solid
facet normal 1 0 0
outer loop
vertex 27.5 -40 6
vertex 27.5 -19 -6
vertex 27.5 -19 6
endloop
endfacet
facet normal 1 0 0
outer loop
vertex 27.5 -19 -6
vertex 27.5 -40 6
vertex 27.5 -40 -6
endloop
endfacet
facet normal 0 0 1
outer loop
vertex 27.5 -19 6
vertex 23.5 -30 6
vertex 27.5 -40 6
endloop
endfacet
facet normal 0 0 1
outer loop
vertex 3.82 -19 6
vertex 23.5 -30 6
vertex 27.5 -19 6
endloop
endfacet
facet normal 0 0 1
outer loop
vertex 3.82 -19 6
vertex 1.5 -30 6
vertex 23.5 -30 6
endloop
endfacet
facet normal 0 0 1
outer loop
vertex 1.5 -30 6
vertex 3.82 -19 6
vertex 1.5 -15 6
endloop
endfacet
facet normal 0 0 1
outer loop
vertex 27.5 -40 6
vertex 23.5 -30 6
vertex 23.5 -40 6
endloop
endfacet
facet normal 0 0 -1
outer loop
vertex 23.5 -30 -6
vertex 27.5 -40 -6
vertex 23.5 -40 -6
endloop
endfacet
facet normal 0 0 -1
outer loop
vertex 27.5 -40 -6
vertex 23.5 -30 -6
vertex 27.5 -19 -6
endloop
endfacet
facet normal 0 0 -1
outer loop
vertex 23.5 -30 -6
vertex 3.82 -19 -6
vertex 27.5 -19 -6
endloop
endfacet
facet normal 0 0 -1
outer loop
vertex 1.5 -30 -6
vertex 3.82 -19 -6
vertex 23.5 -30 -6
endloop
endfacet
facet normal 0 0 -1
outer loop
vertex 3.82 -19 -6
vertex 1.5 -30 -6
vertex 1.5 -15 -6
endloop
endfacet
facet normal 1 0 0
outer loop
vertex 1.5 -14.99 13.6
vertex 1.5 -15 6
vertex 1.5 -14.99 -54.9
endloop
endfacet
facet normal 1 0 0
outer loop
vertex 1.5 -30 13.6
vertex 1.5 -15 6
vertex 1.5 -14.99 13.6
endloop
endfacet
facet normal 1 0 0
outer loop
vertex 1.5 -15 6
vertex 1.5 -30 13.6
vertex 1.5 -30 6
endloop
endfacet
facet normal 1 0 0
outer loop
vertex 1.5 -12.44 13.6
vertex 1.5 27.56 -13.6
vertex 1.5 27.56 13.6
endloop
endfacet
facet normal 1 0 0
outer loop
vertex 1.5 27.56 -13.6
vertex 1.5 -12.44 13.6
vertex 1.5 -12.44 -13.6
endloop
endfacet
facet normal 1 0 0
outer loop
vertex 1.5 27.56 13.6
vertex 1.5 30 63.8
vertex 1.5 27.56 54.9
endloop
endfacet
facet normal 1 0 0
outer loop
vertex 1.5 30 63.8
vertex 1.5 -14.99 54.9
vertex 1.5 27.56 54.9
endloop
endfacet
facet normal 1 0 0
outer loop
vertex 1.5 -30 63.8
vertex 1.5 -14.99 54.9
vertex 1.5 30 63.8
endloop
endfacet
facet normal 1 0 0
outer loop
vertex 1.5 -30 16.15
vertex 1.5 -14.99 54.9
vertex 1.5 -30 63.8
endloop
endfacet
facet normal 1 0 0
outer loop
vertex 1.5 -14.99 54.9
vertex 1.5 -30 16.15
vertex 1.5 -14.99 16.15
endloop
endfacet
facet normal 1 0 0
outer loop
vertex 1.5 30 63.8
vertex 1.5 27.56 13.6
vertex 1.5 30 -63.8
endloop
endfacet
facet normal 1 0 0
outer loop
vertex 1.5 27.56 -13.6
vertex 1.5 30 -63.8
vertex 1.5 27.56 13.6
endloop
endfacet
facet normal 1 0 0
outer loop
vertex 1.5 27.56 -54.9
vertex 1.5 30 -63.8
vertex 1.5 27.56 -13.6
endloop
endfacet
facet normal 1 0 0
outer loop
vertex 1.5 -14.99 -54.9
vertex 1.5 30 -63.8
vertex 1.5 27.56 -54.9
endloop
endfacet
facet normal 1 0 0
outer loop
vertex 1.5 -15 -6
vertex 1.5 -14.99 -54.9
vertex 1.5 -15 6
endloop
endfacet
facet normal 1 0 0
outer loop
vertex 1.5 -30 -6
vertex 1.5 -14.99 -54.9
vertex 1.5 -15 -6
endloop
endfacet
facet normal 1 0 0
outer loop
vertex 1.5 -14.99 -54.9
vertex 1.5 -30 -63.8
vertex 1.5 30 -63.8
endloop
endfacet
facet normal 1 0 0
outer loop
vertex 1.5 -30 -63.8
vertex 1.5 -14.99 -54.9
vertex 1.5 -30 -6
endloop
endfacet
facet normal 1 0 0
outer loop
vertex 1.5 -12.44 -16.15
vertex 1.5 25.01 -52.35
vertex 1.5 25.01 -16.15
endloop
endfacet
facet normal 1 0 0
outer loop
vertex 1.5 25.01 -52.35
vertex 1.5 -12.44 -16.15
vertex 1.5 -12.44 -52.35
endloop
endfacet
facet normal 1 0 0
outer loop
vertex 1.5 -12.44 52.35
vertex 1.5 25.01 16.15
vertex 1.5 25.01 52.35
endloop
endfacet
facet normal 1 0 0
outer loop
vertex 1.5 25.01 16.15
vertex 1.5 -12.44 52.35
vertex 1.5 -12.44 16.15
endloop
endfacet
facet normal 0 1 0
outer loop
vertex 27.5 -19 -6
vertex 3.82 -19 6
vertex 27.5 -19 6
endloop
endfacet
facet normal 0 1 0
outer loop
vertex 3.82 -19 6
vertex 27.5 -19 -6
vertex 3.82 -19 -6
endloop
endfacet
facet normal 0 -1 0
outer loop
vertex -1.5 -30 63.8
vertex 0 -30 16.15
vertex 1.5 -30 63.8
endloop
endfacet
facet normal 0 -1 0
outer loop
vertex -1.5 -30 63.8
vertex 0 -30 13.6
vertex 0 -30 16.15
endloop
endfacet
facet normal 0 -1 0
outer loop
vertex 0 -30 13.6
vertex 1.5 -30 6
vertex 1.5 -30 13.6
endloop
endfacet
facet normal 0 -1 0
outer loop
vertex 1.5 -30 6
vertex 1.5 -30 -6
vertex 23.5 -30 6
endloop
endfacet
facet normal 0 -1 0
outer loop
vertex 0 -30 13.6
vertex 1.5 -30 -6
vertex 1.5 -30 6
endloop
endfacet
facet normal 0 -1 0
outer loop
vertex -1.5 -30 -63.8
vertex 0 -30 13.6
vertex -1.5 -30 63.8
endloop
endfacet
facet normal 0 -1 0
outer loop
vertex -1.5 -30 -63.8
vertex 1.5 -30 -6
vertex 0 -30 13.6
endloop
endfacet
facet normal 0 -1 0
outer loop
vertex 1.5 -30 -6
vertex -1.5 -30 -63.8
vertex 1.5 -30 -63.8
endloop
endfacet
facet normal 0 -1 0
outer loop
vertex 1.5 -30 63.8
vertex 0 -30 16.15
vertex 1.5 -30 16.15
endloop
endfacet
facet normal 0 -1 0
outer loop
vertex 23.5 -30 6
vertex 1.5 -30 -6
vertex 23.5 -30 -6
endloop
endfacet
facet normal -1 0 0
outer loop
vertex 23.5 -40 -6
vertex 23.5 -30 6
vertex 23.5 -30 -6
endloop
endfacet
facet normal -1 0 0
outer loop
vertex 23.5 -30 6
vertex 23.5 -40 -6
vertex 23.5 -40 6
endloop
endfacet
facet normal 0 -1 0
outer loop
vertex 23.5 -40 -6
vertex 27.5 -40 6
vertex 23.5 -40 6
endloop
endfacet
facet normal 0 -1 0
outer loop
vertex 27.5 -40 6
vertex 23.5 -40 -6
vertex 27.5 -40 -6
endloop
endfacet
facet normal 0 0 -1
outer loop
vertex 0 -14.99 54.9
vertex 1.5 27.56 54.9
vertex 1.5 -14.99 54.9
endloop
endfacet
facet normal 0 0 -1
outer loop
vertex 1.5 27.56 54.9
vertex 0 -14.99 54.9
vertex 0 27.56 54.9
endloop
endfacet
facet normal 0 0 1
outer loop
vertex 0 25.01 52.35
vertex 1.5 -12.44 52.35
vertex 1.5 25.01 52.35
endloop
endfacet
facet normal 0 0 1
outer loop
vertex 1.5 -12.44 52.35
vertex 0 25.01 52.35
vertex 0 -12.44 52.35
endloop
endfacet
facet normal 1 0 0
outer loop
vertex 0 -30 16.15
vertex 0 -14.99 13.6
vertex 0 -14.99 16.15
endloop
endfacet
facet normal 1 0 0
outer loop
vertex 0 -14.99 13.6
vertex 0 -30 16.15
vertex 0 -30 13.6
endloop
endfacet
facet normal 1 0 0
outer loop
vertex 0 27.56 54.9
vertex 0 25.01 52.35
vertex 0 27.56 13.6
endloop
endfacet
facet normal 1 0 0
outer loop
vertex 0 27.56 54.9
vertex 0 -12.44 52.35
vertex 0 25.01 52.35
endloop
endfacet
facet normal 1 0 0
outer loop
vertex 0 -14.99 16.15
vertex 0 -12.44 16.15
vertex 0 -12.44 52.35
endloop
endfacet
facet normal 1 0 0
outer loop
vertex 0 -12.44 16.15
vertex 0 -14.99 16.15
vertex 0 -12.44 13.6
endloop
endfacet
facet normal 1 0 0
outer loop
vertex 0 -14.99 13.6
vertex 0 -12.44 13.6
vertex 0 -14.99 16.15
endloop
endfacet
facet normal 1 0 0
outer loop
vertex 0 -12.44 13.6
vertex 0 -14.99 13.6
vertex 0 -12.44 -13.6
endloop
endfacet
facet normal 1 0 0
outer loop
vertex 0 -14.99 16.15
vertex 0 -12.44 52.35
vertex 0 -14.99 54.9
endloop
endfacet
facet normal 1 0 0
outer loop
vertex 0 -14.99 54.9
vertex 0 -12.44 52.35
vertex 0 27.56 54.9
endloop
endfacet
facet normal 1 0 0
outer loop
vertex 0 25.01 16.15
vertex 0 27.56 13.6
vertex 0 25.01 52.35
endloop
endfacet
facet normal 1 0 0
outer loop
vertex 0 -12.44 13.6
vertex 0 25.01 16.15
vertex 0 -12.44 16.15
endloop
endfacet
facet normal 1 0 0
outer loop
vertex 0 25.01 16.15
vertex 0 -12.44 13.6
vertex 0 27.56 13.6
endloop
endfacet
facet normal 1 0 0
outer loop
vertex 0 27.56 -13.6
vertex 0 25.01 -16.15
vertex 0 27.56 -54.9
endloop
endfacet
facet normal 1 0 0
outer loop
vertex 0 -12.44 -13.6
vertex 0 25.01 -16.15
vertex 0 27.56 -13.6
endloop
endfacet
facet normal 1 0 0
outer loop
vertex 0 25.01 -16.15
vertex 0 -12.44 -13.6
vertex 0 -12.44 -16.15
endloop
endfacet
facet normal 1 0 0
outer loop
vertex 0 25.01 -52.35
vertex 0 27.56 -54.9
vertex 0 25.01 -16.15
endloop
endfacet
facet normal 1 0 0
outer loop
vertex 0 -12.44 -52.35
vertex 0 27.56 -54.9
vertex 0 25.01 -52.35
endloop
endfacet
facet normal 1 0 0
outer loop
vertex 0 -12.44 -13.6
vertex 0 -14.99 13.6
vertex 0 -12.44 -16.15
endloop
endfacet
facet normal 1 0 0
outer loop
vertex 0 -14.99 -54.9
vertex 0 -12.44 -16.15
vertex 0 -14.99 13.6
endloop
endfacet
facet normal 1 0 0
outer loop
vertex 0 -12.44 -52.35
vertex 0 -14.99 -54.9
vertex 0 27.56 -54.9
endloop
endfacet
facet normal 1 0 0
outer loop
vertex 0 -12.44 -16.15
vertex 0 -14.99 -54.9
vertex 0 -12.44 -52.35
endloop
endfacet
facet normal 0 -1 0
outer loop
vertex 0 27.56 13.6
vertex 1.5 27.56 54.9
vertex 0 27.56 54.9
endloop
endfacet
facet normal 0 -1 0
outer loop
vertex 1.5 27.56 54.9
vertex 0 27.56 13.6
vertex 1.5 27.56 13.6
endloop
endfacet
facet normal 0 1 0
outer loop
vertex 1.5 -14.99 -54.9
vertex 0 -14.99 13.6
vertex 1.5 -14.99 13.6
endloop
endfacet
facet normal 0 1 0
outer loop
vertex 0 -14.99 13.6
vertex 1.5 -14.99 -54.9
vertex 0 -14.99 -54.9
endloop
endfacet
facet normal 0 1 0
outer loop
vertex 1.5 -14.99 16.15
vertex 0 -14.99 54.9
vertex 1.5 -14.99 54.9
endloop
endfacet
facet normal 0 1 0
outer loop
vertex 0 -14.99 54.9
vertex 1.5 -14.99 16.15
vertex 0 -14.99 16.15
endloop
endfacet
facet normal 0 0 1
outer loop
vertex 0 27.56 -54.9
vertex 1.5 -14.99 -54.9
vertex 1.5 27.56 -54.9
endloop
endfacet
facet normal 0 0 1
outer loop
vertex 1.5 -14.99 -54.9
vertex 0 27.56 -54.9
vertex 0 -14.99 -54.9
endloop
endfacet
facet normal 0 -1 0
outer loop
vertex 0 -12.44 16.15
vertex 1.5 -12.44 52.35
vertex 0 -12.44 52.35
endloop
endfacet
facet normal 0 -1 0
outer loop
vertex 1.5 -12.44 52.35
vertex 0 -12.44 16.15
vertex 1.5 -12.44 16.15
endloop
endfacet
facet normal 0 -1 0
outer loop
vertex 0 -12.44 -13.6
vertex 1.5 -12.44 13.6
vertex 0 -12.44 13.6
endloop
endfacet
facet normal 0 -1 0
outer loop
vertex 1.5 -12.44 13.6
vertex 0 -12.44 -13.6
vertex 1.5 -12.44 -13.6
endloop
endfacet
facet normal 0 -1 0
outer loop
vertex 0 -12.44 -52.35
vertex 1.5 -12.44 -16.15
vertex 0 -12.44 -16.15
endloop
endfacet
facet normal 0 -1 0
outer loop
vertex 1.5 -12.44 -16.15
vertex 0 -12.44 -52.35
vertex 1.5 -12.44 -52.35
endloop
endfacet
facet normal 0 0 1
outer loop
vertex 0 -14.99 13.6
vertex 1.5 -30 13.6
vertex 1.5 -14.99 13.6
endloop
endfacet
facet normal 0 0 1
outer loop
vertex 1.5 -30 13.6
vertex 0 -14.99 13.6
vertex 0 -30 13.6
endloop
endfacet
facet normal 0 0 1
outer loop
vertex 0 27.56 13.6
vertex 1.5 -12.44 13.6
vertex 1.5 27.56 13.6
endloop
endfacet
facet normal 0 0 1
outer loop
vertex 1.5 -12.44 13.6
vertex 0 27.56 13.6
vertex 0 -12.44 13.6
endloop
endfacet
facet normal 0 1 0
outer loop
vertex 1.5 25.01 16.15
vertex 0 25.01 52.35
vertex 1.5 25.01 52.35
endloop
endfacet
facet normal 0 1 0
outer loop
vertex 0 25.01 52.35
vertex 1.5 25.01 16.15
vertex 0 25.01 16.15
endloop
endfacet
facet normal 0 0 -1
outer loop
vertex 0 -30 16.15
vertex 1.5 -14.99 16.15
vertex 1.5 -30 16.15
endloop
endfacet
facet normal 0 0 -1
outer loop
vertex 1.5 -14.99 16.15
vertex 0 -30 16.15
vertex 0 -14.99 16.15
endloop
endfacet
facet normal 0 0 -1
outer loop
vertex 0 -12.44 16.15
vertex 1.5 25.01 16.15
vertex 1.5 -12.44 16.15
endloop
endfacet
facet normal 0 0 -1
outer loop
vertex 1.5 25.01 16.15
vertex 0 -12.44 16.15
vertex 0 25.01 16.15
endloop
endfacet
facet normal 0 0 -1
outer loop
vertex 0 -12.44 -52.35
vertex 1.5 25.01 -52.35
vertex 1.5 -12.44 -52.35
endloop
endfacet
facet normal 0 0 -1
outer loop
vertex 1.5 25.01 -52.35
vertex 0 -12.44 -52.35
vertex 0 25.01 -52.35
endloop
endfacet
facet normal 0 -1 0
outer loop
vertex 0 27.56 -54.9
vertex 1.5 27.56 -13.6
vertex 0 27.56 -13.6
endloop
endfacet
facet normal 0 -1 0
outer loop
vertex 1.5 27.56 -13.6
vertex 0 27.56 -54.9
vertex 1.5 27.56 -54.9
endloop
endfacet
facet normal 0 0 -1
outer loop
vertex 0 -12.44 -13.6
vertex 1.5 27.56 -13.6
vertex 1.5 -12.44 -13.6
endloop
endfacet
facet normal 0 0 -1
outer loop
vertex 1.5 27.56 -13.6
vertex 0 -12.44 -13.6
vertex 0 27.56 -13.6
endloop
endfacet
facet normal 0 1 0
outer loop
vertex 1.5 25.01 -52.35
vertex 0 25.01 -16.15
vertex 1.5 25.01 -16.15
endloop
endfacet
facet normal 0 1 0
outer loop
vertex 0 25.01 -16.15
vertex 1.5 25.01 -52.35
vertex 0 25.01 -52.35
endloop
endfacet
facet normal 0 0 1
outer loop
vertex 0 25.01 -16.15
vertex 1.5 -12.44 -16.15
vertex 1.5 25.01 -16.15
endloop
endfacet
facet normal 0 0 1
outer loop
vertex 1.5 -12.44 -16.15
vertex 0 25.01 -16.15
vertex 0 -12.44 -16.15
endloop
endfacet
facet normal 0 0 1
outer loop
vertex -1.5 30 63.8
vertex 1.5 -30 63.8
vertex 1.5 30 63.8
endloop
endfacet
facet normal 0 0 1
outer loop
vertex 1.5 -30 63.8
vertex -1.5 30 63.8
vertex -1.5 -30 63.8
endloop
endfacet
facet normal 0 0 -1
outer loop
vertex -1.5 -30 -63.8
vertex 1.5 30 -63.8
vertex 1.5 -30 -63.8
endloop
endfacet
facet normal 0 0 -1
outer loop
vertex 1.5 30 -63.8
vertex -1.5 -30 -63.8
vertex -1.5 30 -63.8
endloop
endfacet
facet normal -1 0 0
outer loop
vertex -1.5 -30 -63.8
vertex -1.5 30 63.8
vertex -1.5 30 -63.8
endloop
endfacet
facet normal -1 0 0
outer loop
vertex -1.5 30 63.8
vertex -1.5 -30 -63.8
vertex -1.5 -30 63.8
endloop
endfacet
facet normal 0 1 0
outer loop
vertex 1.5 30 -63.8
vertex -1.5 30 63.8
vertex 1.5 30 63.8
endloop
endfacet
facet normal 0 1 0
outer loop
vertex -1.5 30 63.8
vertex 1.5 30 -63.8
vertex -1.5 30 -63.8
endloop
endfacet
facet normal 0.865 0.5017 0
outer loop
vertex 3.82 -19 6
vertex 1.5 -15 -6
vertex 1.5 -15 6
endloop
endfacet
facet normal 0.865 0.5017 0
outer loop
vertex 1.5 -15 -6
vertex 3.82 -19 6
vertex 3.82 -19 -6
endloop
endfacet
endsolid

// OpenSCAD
$fa=5;$fs=0.01;


difference(){
	union() {
		cube(center = true, size = [3.0000000000, 60.0000000000, 127.6000000000]);
		union() {
			translate(v = [0, -24.5000000000, 0]) {
				translate(v = [14.5000000000, 0, 0]) {
					cube(center = true, size = [26.0000000000, 11.0000000000, 12.0000000000]);
				}
			}
			translate(v = [0, -35.0000000000, 0]) {
				translate(v = [25.5000000000, 0, 0]) {
					cube(center = true, size = [4.0000000000, 10.0000000000, 12.0000000000]);
				}
			}
		}
		translate(v = [0, -15.0000000000, 0]) {
			translate(v = [1.5000000000, 0, 0]) {
				translate(v = [0, 0, -6.0000000000]) {
					polyhedron(faces = [[0, 1, 2, 3], [5, 4, 3, 2], [0, 4, 5, 1], [0, 3, 4], [5, 2, 1]], points = [[0, 0, 0], [0, 0, 12.0000000000], [0, -4.0000000000, 12.0000000000], [0, -4.0000000000, 0], [2.3200000000, -4.0000000000, 0], [2.3200000000, -4.0000000000, 12.0000000000]]);
				}
			}
		}
	}
	/* Holes Below*/
	union(){
		translate(v = [1.5000000000, 0, 0]) {
			translate(v = [0, 6.2850000000, 0]) {
				translate(v = [0, 0, 53.6250000000]) {
					cube(center = true, size = [3.0000000000, 42.5500000000, 2.5500000000]);
				}
			}
		}
		translate(v = [0, -13.7150000000, 0]) {
			translate(v = [1.5000000000, 0, 0]) {
				cube(center = true, size = [3.0000000000, 2.5500000000, 109.8000000000]);
			}
		}
		translate(v = [0, 26.2850000000, 0]) {
			translate(v = [1.5000000000, 0, 0]) {
				translate(v = [0, 0, 34.2500000000]) {
					cube(center = true, size = [3.0000000000, 2.5500000000, 41.3000000000]);
				}
			}
		}
		translate(v = [1.5000000000, 0, 0]) {
			translate(v = [0, -1.2200000000, 0]) {
				translate(v = [0, 0, 14.8750000000]) {
					cube(center = true, size = [3.0000000000, 57.5600000000, 2.5500000000]);
				}
			}
		}
		translate(v = [1.5000000000, 0, 0]) {
			translate(v = [0, 6.2850000000, 0]) {
				translate(v = [0, 0, -53.6250000000]) {
					cube(center = true, size = [3.0000000000, 42.5500000000, 2.5500000000]);
				}
			}
		}
		translate(v = [0, 26.2850000000, 0]) {
			translate(v = [1.5000000000, 0, 0]) {
				translate(v = [0, 0, -34.2500000000]) {
					cube(center = true, size = [3.0000000000, 2.5500000000, 41.3000000000]);
				}
			}
		}
		translate(v = [0, 6.2850000000, 0]) {
			translate(v = [1.5000000000, 0, 0]) {
				translate(v = [0, 0, -14.8750000000]) {
					cube(center = true, size = [3.0000000000, 42.5500000000, 2.5500000000]);
				}
			}
		}
	} /* End Holes */ 
}
